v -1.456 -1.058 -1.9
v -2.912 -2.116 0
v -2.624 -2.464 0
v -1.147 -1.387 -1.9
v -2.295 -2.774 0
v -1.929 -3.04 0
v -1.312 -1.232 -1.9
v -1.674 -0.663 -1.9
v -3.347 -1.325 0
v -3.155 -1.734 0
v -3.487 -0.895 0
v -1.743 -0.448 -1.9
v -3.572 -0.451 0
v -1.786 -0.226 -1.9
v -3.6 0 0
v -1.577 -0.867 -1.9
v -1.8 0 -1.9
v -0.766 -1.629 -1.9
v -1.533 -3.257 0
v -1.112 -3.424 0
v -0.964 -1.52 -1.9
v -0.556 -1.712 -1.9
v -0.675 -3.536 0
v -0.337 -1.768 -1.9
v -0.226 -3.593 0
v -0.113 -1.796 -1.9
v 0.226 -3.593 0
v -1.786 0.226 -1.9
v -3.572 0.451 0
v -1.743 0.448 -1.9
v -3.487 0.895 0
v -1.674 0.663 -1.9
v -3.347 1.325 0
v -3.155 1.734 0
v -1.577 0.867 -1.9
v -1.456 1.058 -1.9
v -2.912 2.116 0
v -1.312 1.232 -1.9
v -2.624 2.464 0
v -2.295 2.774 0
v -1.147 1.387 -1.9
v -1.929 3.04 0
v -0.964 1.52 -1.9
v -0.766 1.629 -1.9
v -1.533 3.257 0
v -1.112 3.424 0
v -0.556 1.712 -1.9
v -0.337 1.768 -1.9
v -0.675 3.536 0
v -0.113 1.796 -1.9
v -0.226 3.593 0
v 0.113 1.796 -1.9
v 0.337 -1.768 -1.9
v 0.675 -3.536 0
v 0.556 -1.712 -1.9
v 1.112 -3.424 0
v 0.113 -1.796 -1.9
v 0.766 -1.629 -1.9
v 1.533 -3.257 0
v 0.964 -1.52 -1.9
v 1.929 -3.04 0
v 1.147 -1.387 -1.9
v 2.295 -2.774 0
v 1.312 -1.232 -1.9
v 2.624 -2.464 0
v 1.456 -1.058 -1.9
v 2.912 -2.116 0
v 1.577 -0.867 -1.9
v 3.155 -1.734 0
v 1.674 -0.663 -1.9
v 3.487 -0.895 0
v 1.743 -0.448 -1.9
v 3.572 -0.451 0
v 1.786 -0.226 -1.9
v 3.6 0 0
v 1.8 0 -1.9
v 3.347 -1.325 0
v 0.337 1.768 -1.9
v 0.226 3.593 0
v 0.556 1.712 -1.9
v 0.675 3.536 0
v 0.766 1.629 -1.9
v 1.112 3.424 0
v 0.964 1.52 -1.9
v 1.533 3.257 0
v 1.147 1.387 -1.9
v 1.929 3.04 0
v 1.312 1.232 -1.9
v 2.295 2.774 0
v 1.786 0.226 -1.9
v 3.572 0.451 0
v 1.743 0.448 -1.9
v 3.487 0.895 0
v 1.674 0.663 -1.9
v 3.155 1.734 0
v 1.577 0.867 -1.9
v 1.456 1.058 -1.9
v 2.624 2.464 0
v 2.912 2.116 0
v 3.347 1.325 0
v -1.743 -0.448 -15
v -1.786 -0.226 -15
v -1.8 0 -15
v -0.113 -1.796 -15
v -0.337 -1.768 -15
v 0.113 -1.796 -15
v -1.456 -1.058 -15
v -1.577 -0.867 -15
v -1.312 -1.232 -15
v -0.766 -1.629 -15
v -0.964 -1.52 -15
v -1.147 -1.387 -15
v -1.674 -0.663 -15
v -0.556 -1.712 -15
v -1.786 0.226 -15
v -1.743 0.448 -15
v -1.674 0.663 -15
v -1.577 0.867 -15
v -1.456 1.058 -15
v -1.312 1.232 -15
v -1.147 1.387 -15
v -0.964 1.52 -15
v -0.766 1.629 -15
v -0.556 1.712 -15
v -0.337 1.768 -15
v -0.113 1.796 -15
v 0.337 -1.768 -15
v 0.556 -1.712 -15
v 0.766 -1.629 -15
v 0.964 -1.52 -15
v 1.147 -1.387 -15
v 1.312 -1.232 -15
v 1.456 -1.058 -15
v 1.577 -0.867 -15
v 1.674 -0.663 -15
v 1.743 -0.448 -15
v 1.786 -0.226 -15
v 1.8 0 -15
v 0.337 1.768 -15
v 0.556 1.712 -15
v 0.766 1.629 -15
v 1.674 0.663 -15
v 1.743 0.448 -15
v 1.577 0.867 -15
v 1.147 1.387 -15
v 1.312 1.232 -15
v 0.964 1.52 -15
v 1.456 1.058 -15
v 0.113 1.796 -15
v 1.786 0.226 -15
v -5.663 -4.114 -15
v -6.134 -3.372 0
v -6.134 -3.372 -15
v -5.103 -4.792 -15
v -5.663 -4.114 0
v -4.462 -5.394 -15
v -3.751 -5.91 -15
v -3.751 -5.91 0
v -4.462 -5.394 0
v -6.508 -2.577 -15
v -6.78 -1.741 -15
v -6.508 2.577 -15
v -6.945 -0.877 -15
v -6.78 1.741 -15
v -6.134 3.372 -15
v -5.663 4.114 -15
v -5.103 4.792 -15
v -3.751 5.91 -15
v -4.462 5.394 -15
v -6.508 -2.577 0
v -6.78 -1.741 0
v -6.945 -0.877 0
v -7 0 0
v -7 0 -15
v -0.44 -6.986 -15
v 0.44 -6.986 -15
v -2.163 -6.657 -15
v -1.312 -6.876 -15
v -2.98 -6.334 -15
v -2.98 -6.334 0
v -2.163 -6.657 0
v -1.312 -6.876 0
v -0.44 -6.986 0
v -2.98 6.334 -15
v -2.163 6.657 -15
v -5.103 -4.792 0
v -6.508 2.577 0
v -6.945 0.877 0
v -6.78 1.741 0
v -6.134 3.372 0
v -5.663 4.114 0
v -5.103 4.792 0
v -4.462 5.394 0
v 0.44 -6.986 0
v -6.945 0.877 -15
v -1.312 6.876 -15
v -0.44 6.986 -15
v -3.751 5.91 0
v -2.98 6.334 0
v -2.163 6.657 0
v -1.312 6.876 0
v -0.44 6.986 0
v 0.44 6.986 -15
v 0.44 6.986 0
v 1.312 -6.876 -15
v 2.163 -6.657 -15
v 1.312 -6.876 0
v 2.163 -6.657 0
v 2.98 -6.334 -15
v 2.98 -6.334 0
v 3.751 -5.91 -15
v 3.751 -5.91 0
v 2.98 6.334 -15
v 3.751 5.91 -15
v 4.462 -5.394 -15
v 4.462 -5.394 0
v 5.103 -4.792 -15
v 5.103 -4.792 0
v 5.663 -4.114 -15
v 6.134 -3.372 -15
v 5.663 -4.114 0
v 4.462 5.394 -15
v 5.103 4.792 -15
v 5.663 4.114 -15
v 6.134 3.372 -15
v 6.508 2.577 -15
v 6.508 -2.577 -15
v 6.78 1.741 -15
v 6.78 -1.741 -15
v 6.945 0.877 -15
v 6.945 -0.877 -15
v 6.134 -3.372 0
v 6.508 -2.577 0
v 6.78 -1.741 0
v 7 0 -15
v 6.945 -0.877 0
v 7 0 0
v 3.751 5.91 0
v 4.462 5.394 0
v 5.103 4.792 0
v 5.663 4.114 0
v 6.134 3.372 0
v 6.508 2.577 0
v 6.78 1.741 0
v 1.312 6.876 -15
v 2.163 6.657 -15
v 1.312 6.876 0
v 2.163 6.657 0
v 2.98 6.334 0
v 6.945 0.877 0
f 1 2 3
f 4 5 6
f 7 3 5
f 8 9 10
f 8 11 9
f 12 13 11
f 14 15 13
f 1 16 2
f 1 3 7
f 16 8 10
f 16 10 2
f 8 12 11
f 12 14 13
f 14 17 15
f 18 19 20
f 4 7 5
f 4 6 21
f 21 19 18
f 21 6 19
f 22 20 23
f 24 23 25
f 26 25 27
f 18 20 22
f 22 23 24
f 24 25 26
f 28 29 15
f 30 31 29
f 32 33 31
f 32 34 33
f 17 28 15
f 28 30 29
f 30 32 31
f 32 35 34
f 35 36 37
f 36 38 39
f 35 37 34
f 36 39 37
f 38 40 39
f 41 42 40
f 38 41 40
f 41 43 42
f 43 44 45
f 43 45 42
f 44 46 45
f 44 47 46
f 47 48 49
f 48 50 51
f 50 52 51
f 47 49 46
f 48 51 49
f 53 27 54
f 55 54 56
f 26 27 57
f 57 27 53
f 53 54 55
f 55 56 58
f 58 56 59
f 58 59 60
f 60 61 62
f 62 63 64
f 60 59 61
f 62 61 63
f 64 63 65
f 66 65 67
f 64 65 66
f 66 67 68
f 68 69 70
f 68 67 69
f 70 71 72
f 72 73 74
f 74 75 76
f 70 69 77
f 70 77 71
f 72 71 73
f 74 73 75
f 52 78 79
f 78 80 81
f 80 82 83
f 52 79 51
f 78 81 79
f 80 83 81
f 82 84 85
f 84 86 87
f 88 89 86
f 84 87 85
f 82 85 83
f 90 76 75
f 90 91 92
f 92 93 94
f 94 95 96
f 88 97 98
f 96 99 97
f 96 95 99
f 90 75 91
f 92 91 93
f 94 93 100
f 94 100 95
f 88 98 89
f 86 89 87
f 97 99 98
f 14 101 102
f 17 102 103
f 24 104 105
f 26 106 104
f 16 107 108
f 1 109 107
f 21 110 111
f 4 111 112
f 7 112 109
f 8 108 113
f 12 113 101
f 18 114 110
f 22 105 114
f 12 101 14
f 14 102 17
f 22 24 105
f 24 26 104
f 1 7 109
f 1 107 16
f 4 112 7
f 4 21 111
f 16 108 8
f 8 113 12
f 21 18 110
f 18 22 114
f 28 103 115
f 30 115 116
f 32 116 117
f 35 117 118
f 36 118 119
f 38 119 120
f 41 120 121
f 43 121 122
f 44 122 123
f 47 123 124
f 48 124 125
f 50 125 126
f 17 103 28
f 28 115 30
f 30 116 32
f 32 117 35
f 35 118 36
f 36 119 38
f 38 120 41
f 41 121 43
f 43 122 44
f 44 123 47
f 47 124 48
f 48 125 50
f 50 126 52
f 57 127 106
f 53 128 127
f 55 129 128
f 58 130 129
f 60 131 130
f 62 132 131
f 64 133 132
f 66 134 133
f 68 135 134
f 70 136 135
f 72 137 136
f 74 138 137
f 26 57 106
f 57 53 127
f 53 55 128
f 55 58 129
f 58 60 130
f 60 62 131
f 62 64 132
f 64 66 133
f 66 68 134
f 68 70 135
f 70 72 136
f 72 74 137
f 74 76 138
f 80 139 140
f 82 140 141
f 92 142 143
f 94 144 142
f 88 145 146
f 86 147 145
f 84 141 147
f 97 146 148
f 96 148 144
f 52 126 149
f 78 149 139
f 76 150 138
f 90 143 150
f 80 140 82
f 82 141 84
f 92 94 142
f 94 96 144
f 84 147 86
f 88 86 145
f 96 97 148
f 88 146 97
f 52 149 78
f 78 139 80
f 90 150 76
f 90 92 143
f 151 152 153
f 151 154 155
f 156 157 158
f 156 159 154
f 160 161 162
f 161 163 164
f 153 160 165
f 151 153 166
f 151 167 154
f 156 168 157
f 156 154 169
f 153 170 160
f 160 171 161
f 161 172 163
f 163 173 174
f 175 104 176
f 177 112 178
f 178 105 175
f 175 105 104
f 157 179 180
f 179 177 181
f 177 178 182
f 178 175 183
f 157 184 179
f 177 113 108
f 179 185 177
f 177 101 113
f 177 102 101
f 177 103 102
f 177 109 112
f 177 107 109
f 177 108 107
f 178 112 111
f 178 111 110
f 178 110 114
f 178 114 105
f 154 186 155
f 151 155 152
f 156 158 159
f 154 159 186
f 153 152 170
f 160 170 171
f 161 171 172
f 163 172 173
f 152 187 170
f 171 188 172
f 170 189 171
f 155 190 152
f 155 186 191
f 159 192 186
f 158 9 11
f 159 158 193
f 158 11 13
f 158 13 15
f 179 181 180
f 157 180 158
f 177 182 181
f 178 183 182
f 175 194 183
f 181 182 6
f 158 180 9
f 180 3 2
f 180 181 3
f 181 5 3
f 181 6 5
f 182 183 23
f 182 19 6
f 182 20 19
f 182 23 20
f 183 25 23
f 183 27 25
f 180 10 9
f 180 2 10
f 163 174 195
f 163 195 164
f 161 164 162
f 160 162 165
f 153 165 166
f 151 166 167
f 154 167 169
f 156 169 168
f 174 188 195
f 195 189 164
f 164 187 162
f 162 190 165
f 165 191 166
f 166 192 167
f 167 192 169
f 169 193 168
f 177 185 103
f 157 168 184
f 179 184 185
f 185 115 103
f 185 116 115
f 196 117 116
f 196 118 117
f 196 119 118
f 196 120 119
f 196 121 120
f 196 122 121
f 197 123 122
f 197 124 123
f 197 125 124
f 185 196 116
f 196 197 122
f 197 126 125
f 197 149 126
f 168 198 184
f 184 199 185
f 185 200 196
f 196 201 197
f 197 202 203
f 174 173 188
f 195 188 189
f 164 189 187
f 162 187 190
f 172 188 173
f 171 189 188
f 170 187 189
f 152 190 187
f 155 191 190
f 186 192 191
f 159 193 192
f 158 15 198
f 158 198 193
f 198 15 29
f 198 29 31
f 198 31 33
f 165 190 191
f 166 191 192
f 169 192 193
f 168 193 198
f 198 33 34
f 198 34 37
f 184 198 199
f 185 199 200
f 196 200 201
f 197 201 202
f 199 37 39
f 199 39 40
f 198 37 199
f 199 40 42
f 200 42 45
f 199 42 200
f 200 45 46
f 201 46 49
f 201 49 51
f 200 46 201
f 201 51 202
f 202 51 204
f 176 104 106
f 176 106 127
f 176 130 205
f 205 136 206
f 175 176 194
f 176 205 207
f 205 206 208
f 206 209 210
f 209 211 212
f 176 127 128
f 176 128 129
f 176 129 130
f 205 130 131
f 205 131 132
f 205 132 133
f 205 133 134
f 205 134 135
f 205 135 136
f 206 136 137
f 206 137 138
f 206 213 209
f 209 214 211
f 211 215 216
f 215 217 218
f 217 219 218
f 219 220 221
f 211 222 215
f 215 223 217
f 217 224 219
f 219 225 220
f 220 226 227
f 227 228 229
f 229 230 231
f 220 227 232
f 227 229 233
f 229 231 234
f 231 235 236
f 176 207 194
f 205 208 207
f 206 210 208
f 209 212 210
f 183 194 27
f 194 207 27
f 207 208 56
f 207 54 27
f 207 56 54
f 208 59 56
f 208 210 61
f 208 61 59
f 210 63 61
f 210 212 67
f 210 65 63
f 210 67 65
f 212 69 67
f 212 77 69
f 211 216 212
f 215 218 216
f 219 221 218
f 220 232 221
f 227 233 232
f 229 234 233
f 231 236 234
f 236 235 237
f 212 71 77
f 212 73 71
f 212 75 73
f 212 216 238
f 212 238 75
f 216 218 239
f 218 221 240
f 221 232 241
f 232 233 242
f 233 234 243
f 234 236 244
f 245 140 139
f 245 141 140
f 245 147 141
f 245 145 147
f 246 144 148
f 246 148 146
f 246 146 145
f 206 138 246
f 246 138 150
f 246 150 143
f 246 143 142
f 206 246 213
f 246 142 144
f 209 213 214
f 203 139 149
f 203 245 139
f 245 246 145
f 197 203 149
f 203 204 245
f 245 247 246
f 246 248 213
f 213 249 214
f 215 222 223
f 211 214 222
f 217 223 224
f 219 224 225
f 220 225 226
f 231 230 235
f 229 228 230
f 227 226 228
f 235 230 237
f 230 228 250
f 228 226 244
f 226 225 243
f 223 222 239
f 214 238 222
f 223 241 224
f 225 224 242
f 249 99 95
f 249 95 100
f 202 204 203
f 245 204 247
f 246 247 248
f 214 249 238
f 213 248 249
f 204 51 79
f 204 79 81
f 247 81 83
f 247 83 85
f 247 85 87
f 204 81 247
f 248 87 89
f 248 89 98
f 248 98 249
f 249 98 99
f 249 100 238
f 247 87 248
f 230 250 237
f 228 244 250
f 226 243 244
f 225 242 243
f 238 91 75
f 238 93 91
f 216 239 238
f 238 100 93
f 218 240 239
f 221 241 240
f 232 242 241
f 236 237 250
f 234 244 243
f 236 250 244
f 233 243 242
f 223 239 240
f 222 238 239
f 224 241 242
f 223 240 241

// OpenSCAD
$fn = 50;

difference() {
	union() {
		translate(v = [0, 0, -15.0]) {
			cylinder(h = 15, r = 7.0);
		}
	}
	union() {
		translate(v = [0, 0, 0]) {
			rotate(a = [0, 0, 0]) {
				difference() {
					union() {
						translate(v = [0, 0, -18.0]) {
							cylinder(h = 18, r = 1.5);
						}
						translate(v = [0, 0, -1.9]) {
							cylinder(h = 1.9, r1 = 1.8, r2 = 3.6);
						}
						translate(v = [0, 0, -18.0]) {
							cylinder(h = 18, r = 1.8);
						}
						translate(v = [0, 0, -18.0]) {
							cylinder(h = 18, r = 1.5);
						}
					}
					union();
				}
			}
		}
	}
}
